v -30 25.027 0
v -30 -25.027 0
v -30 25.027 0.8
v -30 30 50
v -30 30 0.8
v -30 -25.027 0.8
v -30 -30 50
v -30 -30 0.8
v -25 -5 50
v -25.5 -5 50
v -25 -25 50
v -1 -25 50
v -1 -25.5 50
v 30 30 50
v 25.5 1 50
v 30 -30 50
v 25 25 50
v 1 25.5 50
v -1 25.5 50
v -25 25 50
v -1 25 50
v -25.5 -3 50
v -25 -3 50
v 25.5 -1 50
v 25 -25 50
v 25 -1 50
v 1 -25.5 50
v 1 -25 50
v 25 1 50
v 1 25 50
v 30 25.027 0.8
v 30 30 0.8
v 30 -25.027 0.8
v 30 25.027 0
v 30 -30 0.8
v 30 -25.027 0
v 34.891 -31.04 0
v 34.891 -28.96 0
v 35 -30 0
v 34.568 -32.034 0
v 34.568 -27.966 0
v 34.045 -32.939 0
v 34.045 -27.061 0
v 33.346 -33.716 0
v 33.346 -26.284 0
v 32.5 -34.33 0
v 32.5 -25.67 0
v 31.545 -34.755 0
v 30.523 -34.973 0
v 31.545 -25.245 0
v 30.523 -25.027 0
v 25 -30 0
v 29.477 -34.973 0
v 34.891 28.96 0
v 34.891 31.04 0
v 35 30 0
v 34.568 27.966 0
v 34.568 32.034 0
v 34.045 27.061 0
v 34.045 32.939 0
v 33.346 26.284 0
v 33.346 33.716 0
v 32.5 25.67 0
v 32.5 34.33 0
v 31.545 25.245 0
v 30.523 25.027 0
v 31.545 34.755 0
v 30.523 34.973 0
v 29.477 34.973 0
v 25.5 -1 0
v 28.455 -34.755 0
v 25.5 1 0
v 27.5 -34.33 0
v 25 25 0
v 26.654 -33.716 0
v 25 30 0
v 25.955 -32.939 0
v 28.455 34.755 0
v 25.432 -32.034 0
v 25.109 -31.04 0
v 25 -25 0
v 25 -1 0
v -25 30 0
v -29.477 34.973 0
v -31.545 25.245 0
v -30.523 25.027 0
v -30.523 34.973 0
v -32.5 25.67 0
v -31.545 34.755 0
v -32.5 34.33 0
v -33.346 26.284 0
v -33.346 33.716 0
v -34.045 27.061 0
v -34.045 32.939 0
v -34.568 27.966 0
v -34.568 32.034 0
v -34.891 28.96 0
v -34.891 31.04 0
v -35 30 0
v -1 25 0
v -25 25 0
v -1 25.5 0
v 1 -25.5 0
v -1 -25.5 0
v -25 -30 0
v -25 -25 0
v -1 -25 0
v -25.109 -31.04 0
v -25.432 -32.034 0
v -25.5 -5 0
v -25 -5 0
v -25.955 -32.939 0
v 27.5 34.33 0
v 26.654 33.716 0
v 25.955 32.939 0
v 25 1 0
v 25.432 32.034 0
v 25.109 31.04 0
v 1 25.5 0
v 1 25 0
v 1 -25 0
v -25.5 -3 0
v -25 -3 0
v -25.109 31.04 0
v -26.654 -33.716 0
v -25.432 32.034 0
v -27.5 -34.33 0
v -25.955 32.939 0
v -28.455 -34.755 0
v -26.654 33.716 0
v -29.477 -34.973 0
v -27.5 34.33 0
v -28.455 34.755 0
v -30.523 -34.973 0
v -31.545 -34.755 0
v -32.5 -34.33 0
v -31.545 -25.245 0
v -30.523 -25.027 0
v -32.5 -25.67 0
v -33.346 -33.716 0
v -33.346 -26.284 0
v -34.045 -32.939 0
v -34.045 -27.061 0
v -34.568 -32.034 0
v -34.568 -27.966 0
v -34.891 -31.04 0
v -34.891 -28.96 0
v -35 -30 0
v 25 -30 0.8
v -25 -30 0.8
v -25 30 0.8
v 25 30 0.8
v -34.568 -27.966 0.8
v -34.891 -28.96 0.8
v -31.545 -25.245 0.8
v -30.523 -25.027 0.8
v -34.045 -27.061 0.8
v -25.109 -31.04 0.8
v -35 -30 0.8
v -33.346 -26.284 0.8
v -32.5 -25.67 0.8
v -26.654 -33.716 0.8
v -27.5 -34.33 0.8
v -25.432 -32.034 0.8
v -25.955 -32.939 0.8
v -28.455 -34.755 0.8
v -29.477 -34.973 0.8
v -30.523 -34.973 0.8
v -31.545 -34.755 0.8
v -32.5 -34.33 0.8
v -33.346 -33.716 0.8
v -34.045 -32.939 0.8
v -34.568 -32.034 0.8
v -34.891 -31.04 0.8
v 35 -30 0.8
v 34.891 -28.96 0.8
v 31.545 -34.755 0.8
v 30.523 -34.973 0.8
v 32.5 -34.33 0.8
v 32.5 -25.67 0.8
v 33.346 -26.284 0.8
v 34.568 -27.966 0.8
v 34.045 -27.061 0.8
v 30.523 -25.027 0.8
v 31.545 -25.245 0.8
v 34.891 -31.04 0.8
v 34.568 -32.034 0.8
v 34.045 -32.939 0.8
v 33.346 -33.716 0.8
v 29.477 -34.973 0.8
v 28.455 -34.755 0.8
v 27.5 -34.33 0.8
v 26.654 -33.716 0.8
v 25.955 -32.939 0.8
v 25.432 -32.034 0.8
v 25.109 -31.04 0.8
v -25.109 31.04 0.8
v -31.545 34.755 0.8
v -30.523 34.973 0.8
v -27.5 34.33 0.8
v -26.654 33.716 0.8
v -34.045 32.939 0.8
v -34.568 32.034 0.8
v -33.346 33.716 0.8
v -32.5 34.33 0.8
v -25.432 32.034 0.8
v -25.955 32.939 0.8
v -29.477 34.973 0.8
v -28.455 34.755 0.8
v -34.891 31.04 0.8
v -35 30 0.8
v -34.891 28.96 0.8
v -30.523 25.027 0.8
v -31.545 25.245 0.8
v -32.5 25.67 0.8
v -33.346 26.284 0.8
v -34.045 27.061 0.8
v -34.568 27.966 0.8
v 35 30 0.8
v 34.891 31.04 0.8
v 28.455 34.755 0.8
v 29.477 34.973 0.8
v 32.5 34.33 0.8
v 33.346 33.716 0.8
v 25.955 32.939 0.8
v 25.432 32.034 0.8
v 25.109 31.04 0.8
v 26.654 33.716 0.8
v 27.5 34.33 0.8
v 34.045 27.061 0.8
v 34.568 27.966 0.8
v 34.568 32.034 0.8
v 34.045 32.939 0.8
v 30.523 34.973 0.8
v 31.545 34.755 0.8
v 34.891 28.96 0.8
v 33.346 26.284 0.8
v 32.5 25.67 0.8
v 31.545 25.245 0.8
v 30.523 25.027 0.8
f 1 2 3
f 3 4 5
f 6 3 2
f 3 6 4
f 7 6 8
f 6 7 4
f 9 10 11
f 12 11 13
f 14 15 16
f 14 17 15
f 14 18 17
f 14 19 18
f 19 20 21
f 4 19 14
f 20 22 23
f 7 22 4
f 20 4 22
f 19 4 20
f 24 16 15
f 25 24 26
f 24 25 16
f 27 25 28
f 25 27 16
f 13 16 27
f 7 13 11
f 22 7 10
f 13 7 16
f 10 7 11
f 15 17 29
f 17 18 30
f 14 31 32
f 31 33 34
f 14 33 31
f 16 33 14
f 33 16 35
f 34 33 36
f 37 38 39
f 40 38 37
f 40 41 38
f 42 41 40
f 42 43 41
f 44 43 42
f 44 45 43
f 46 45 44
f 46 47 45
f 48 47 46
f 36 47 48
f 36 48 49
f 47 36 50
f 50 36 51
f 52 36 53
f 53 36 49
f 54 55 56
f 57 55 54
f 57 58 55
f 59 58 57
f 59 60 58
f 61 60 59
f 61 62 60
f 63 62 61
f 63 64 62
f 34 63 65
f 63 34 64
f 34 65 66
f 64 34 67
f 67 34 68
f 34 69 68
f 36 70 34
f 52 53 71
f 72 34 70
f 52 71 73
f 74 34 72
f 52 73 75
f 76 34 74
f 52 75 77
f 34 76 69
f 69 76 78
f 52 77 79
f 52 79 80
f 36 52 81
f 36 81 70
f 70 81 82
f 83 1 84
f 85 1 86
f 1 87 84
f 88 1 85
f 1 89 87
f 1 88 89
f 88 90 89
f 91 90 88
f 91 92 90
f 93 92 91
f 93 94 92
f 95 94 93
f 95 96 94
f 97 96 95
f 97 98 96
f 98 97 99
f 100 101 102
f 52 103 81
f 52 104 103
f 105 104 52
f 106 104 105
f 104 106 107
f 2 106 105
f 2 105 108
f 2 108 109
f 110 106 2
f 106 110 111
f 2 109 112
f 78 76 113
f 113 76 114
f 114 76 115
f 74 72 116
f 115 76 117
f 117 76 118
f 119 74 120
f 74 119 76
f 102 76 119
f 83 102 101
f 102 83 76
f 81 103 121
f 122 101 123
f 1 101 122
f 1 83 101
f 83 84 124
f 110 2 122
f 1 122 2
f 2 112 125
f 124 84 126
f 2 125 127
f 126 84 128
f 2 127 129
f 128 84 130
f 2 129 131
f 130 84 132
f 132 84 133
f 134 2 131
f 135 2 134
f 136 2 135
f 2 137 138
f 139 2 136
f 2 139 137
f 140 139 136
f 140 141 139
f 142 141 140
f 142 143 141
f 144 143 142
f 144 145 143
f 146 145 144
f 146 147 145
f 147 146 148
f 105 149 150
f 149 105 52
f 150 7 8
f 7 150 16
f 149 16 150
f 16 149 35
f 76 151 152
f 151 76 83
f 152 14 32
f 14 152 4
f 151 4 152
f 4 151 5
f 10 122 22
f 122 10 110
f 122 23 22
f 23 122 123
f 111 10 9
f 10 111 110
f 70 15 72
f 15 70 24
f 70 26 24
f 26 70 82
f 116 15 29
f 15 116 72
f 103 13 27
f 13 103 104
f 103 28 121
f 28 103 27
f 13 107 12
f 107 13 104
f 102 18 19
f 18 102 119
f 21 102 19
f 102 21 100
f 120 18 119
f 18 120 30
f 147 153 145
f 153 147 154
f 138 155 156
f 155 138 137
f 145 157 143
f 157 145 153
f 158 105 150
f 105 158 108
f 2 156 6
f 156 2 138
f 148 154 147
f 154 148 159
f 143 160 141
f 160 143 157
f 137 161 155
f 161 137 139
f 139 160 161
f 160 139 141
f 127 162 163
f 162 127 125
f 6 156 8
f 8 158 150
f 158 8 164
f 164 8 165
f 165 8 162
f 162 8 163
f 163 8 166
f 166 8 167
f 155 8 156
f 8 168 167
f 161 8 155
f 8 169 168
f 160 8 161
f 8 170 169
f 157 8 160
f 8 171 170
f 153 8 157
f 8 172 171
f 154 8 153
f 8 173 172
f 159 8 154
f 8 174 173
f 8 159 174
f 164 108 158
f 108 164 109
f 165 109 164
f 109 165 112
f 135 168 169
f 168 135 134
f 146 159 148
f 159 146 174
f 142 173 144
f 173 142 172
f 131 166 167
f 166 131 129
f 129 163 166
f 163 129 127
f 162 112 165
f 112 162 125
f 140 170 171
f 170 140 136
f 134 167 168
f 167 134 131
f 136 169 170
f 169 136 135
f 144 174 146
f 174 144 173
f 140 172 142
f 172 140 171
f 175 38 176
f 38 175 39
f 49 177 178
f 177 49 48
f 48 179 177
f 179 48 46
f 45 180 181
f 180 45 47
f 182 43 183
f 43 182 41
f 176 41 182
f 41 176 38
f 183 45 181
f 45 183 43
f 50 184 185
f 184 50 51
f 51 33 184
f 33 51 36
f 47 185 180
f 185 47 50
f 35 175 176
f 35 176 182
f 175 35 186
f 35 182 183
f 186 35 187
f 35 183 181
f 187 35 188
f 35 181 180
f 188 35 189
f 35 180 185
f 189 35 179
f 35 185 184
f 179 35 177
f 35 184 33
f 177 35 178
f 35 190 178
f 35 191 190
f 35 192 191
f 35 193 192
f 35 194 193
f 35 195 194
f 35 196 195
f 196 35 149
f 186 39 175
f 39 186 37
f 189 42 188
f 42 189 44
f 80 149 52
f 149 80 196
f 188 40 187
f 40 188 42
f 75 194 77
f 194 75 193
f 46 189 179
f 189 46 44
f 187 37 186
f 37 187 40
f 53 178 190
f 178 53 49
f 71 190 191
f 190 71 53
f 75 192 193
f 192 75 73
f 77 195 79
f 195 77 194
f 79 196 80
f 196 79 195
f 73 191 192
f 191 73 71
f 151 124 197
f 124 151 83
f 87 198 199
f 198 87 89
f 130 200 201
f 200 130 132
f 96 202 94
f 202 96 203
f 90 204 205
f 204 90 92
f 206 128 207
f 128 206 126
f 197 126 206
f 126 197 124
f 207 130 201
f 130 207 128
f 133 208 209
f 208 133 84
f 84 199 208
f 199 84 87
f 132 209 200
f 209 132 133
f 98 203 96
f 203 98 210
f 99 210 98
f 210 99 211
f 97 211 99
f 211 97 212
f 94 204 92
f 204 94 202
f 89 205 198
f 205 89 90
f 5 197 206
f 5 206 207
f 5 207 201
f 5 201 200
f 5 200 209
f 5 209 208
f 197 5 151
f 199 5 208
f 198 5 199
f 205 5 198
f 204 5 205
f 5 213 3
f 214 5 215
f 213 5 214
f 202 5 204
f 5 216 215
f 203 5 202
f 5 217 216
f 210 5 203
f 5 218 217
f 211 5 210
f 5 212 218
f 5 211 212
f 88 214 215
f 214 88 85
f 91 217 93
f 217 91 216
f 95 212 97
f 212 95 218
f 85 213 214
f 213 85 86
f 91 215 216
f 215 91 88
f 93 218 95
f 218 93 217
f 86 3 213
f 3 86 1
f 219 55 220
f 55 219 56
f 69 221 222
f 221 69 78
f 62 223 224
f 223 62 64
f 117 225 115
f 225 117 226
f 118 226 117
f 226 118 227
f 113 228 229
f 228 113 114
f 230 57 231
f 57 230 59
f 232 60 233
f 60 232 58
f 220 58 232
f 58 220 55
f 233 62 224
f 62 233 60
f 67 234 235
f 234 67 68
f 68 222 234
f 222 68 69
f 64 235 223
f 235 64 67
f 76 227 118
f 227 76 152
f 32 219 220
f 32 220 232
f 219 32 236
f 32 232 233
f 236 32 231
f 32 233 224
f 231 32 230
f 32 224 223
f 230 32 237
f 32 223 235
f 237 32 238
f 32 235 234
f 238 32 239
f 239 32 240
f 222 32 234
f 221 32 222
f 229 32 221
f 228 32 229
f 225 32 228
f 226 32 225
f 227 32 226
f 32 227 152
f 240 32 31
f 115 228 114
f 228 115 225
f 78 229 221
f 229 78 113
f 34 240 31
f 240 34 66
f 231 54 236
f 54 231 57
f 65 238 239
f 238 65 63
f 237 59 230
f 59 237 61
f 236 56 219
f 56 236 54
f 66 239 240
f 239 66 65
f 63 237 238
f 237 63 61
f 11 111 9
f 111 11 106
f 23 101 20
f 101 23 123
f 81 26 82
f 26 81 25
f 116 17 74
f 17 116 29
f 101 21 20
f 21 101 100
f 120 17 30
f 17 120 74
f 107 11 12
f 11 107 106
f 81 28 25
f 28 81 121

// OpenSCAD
// Calibration test tower
//
// Generate STL using OpenSCAD:
//   openscad square_tower.scad -o square_tower.stl
//
// Pulled from Klipper documentation
// https://github.com/KevinOConnor/klipper/tree/master/docs/prints
//

square_width = 5;
square_size = 60;
square_height = 50;
antiwarp_height = .8;
antiwarp_radius = 5;
CUT = 0.01;

module notch(x, y, rot) {
    depth = .5;
    width = 1;
    translate([x, y, 0])
        rotate([0, 0, rot])
            translate([-depth, -width, -CUT])
                cube([2*depth, 2*width, square_height + 2*CUT]);
}

module square_with_notches() {
    difference() {
        // Start with initial square
        cube([square_size, square_size, square_height]);
        // Remove four notches on inside perimeter
        notch(square_width, square_size/2 - 4, 0);
        notch(square_size - square_width, square_size/2, 0);
        notch(square_size/2, square_width, 90);
        notch(square_size/2, square_size - square_width, 90);
    }
}

module anti_warp_feet() {
    module anti_warp_cylinder() {
        cylinder(r=antiwarp_radius, h=antiwarp_height, $fs=.5);
    }
    //dist = antiwarp_radius / 2.5;
    dist = 0;
    translate([dist, dist, 0])
        anti_warp_cylinder();
    translate([square_size-dist, dist, 0])
        anti_warp_cylinder();
    translate([dist, square_size-dist, 0])
        anti_warp_cylinder();
    translate([square_size-dist, square_size-dist, 0])
        anti_warp_cylinder();
}

module hollow_square() {
    translate([-30, -30, 0]) difference() {
        union() {
            square_with_notches();
            anti_warp_feet();
        }
        translate([square_width, square_width, -CUT])
            cube([square_size-2*square_width, square_size-2*square_width,
                  square_height + 2*CUT]);
    }
}

hollow_square();
